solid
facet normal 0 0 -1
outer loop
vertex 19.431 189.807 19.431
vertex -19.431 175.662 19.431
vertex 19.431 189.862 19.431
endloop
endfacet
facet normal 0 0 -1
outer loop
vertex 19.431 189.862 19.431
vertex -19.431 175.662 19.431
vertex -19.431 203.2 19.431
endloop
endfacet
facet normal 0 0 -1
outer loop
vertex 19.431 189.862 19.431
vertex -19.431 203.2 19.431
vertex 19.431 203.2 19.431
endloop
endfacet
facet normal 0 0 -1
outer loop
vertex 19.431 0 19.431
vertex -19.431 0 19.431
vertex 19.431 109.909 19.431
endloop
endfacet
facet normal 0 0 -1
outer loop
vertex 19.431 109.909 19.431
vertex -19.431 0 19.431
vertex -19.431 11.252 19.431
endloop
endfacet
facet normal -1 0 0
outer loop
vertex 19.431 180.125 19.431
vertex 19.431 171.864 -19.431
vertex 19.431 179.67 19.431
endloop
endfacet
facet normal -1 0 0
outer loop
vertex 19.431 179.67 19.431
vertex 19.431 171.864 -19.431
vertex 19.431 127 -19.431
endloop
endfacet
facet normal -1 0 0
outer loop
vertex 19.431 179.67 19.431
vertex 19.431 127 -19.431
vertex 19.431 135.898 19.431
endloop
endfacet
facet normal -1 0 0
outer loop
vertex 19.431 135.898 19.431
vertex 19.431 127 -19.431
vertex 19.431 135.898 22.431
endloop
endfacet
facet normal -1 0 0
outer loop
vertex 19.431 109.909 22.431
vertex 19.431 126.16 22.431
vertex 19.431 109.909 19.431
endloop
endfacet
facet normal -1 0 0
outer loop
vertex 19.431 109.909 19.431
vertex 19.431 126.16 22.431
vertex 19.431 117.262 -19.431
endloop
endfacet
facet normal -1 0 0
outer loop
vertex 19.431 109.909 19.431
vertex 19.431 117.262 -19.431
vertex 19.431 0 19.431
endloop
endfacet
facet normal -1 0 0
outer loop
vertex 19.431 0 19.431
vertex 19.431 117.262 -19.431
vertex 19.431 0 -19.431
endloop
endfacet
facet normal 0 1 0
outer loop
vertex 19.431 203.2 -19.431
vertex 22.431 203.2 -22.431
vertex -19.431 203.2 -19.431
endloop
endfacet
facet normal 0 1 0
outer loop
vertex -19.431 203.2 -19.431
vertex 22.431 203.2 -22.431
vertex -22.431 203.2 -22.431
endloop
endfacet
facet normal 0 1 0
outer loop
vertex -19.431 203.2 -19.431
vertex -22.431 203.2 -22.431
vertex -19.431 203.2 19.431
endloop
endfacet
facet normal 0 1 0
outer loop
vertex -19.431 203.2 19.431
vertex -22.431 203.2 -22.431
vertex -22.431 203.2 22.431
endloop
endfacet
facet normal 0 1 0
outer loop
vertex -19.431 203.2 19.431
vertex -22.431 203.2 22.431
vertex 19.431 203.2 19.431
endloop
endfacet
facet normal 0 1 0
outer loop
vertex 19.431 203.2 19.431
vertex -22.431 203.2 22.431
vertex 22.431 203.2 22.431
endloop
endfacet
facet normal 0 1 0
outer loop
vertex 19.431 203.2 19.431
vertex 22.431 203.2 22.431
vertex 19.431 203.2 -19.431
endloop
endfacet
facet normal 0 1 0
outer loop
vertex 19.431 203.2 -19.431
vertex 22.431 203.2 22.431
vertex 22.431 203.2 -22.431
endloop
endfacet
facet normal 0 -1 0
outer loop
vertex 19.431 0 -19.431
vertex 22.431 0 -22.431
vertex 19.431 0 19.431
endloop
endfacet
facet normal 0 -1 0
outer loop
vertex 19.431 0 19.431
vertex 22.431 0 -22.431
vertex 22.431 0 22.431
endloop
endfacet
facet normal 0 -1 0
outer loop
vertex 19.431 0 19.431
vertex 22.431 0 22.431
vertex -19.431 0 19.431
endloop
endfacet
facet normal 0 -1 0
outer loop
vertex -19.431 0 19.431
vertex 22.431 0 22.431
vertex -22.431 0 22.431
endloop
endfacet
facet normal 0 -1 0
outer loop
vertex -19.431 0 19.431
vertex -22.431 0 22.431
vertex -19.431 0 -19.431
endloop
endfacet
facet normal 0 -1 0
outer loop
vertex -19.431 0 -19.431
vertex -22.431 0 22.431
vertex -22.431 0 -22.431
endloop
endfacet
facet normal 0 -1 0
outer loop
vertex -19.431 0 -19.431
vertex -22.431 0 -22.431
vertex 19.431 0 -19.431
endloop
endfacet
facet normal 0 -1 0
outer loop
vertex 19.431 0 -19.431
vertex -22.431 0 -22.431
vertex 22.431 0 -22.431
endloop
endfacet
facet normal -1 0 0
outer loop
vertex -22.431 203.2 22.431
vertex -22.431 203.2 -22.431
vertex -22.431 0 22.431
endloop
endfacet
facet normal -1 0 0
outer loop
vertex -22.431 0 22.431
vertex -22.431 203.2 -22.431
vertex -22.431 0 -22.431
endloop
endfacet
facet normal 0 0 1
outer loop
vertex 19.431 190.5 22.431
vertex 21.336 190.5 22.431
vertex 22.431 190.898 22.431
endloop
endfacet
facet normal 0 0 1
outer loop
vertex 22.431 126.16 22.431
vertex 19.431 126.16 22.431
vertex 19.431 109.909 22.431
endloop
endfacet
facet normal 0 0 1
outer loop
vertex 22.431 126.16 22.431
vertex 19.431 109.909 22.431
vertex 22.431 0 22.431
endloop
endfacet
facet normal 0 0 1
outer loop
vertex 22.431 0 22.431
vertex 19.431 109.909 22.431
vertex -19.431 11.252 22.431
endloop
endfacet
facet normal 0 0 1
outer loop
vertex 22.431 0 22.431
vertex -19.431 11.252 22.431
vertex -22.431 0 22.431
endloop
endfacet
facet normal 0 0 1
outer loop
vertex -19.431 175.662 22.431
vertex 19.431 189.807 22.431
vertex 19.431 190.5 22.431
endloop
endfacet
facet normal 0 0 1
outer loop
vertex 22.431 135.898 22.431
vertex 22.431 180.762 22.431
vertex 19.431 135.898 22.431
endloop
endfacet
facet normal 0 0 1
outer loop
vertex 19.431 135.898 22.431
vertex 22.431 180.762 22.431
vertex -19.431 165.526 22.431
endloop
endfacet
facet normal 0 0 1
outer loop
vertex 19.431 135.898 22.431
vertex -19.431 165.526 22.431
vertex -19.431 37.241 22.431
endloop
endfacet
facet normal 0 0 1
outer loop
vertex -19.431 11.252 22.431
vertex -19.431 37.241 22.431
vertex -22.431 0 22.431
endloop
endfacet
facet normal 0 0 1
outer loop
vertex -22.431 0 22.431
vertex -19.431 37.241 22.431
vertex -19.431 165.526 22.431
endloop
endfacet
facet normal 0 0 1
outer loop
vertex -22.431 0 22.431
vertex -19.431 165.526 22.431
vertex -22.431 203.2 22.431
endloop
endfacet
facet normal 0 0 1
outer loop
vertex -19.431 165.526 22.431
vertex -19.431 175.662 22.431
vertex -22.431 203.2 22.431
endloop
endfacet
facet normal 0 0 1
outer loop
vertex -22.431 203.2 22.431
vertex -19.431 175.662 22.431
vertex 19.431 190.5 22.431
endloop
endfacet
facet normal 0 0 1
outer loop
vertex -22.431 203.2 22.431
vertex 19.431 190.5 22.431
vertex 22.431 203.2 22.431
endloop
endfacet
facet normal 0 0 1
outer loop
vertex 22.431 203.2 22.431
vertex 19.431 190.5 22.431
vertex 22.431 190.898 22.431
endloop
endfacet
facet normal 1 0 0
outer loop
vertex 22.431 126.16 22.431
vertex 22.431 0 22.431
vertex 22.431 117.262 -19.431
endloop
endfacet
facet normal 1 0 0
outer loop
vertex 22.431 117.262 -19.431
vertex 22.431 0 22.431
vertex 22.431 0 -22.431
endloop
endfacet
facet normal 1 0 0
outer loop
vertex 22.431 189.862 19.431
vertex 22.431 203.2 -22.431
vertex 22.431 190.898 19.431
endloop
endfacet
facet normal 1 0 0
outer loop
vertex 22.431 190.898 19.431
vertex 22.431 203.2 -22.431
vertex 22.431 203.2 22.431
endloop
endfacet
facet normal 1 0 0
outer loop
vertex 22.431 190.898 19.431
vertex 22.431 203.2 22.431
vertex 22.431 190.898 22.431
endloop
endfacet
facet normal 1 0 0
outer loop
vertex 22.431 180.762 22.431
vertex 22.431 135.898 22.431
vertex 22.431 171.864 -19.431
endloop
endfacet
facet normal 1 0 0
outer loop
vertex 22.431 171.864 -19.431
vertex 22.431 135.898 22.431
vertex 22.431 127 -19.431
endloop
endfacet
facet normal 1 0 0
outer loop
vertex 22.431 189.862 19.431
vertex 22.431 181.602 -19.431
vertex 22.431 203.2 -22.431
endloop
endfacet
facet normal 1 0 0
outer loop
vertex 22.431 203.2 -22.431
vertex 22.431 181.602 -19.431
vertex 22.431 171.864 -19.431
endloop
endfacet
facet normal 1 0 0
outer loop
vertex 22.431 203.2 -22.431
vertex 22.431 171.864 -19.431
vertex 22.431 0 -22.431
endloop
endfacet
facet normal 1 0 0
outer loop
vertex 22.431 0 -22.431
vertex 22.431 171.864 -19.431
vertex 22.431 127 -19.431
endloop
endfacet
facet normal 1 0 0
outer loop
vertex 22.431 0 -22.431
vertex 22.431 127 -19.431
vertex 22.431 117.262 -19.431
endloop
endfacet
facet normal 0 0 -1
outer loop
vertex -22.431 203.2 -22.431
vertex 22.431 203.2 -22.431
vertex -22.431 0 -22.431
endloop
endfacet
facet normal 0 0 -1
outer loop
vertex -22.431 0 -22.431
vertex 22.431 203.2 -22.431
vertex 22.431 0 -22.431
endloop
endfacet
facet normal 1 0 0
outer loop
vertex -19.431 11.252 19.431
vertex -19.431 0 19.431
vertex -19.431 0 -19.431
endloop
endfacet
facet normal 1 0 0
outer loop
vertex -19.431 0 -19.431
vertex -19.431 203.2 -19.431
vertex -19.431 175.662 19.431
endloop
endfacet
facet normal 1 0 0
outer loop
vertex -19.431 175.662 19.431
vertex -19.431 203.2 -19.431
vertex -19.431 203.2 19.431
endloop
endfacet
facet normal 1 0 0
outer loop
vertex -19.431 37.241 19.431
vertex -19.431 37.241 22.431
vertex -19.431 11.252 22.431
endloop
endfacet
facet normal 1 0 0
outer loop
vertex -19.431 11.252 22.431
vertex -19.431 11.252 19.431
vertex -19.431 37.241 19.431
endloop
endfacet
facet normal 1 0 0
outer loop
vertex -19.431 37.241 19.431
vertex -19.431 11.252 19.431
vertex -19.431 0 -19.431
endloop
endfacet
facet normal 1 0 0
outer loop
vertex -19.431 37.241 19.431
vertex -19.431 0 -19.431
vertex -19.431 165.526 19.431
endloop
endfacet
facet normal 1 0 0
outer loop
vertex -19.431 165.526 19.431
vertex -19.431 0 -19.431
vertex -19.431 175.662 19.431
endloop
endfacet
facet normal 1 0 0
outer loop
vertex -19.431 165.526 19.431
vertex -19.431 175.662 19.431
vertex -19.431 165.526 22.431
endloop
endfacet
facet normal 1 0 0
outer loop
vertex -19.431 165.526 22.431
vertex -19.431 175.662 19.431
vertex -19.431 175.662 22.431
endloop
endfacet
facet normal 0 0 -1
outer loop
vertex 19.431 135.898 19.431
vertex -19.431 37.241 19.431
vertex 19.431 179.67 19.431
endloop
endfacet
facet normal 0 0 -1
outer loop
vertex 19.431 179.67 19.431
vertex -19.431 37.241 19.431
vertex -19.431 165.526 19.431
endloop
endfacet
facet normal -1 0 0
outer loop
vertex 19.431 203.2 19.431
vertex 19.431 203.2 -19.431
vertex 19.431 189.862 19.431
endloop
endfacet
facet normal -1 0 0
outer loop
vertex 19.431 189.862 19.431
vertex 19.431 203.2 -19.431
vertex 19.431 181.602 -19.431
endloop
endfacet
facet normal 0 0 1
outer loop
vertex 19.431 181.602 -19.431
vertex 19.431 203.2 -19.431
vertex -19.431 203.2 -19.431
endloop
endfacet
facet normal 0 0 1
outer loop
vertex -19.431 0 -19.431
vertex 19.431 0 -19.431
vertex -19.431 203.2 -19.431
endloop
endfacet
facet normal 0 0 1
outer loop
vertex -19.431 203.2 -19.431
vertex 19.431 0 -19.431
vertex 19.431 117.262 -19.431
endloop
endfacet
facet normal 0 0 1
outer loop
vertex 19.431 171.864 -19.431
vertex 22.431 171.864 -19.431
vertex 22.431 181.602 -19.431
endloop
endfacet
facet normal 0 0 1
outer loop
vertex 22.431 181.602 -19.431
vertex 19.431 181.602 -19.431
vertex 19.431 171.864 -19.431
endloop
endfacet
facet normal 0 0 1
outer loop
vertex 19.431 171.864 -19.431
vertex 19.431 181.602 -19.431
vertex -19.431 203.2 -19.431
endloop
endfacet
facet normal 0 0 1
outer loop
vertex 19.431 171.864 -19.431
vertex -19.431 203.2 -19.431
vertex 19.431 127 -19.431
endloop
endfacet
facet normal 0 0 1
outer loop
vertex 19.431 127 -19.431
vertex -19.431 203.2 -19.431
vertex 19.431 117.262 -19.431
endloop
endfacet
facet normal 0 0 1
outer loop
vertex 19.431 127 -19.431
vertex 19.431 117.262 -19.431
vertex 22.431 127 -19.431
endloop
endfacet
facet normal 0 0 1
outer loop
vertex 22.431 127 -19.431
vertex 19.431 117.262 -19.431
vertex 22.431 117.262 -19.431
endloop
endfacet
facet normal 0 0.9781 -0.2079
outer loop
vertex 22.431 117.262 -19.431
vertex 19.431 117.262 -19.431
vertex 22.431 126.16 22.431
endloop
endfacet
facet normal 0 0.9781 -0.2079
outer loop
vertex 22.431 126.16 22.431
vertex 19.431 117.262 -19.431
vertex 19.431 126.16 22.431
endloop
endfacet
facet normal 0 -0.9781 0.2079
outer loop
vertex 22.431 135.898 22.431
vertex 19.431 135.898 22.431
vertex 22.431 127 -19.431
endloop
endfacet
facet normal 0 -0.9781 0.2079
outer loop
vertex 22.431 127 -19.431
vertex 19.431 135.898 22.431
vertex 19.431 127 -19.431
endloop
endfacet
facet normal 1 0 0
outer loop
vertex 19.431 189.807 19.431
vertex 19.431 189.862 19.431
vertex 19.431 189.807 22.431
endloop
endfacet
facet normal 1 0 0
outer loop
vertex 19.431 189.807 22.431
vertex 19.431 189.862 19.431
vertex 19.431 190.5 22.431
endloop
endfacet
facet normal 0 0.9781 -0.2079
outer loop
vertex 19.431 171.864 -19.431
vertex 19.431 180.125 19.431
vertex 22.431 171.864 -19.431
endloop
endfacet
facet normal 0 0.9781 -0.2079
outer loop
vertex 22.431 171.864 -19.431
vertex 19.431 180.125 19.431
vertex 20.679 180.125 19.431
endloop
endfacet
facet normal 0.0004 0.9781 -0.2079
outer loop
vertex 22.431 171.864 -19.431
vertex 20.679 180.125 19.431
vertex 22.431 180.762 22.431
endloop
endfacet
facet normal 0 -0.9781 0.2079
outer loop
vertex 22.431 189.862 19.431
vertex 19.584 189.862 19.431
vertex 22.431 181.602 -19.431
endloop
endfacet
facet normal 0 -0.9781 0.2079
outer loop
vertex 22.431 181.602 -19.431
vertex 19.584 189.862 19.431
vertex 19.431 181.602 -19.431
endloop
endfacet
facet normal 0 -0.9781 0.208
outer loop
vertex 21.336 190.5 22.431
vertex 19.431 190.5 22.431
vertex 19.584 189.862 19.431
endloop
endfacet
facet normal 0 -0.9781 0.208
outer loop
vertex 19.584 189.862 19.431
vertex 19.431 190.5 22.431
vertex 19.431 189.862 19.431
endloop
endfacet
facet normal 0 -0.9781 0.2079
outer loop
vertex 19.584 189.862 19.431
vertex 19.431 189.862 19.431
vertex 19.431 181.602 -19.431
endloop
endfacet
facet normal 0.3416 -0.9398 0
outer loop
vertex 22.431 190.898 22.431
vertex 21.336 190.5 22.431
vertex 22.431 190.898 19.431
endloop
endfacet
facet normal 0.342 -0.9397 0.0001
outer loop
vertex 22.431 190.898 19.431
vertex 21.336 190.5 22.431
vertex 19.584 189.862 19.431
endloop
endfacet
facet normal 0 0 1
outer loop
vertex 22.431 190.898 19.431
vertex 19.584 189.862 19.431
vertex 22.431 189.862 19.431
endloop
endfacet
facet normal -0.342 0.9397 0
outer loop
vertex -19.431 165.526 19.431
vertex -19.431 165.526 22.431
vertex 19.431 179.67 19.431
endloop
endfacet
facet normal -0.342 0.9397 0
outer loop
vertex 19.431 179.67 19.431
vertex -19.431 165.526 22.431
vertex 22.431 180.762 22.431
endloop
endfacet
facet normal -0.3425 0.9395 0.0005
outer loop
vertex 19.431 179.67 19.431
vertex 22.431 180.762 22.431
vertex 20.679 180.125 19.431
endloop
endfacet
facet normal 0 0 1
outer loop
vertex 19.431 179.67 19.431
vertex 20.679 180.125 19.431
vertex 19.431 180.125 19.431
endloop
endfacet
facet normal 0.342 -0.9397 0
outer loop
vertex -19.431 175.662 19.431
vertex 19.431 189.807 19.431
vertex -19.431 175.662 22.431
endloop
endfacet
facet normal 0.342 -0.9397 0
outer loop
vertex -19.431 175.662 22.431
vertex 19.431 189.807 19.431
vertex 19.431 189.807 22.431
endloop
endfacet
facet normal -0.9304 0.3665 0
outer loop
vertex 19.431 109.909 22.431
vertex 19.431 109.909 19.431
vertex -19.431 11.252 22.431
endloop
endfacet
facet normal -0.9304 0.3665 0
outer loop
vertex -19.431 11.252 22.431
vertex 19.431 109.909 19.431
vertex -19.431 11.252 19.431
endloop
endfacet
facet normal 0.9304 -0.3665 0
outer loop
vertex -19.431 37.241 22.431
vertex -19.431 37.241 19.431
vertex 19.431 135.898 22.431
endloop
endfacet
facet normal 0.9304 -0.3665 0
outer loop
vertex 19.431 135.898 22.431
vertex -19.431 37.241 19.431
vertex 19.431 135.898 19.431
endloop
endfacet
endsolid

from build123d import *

# Parameters (mm, degrees)
SKETCH1_W           = 44.862
SKETCH1_H           = 44.862
SKETCH1_W_2         = 38.862
SKETCH1_H_2         = 38.862
BOSS_EXTRUDE1_DEPTH = 203.2
X_FACE_CUT_DEPTH    = 3
Y_FACE_DEPTH        = 3


with BuildPart() as part:
    # Sketch1 → Boss-Extrude1 (new body)
    with BuildSketch(Plane(origin=(0, 0, 0), x_dir=(1, 0, 0), z_dir=(0, 1, 0))):
        Rectangle(SKETCH1_W, SKETCH1_H)
        Rectangle(SKETCH1_W_2, SKETCH1_H_2, mode=Mode.SUBTRACT)
    extrude(amount=BOSS_EXTRUDE1_DEPTH)

    # Sketch3 → X Face Cut (cut)
    with BuildSketch(Plane(origin=(22.431, 0, 0), x_dir=(0, 0, -1), z_dir=(1, 0, 0))):
        Polygon((-22.431, 190.5), (19.431, 181.601957215), (19.431, 171.864163049), (-22.431, 180.762205834), align=None)
        Polygon((-22.431, 126.160248619), (19.431, 117.262205834), (19.431, 127), (-22.431, 135.898042785), align=None)
    extrude(amount=-X_FACE_CUT_DEPTH, mode=Mode.SUBTRACT)

    # Sketch4 → Y Face (cut)
    with BuildSketch(Plane.XY.offset(22.431)):
        Polygon((22.431, 180.762205834), (-19.431, 165.525683887), (-19.431, 175.66197717), (22.431, 190.898499117), align=None)
        Polygon((19.431, 109.909043825), (-19.431, 11.252109304), (-19.431, 37.241108263), (19.431, 135.898042785), align=None)
    extrude(amount=-Y_FACE_DEPTH, mode=Mode.SUBTRACT)


solid = part.part
